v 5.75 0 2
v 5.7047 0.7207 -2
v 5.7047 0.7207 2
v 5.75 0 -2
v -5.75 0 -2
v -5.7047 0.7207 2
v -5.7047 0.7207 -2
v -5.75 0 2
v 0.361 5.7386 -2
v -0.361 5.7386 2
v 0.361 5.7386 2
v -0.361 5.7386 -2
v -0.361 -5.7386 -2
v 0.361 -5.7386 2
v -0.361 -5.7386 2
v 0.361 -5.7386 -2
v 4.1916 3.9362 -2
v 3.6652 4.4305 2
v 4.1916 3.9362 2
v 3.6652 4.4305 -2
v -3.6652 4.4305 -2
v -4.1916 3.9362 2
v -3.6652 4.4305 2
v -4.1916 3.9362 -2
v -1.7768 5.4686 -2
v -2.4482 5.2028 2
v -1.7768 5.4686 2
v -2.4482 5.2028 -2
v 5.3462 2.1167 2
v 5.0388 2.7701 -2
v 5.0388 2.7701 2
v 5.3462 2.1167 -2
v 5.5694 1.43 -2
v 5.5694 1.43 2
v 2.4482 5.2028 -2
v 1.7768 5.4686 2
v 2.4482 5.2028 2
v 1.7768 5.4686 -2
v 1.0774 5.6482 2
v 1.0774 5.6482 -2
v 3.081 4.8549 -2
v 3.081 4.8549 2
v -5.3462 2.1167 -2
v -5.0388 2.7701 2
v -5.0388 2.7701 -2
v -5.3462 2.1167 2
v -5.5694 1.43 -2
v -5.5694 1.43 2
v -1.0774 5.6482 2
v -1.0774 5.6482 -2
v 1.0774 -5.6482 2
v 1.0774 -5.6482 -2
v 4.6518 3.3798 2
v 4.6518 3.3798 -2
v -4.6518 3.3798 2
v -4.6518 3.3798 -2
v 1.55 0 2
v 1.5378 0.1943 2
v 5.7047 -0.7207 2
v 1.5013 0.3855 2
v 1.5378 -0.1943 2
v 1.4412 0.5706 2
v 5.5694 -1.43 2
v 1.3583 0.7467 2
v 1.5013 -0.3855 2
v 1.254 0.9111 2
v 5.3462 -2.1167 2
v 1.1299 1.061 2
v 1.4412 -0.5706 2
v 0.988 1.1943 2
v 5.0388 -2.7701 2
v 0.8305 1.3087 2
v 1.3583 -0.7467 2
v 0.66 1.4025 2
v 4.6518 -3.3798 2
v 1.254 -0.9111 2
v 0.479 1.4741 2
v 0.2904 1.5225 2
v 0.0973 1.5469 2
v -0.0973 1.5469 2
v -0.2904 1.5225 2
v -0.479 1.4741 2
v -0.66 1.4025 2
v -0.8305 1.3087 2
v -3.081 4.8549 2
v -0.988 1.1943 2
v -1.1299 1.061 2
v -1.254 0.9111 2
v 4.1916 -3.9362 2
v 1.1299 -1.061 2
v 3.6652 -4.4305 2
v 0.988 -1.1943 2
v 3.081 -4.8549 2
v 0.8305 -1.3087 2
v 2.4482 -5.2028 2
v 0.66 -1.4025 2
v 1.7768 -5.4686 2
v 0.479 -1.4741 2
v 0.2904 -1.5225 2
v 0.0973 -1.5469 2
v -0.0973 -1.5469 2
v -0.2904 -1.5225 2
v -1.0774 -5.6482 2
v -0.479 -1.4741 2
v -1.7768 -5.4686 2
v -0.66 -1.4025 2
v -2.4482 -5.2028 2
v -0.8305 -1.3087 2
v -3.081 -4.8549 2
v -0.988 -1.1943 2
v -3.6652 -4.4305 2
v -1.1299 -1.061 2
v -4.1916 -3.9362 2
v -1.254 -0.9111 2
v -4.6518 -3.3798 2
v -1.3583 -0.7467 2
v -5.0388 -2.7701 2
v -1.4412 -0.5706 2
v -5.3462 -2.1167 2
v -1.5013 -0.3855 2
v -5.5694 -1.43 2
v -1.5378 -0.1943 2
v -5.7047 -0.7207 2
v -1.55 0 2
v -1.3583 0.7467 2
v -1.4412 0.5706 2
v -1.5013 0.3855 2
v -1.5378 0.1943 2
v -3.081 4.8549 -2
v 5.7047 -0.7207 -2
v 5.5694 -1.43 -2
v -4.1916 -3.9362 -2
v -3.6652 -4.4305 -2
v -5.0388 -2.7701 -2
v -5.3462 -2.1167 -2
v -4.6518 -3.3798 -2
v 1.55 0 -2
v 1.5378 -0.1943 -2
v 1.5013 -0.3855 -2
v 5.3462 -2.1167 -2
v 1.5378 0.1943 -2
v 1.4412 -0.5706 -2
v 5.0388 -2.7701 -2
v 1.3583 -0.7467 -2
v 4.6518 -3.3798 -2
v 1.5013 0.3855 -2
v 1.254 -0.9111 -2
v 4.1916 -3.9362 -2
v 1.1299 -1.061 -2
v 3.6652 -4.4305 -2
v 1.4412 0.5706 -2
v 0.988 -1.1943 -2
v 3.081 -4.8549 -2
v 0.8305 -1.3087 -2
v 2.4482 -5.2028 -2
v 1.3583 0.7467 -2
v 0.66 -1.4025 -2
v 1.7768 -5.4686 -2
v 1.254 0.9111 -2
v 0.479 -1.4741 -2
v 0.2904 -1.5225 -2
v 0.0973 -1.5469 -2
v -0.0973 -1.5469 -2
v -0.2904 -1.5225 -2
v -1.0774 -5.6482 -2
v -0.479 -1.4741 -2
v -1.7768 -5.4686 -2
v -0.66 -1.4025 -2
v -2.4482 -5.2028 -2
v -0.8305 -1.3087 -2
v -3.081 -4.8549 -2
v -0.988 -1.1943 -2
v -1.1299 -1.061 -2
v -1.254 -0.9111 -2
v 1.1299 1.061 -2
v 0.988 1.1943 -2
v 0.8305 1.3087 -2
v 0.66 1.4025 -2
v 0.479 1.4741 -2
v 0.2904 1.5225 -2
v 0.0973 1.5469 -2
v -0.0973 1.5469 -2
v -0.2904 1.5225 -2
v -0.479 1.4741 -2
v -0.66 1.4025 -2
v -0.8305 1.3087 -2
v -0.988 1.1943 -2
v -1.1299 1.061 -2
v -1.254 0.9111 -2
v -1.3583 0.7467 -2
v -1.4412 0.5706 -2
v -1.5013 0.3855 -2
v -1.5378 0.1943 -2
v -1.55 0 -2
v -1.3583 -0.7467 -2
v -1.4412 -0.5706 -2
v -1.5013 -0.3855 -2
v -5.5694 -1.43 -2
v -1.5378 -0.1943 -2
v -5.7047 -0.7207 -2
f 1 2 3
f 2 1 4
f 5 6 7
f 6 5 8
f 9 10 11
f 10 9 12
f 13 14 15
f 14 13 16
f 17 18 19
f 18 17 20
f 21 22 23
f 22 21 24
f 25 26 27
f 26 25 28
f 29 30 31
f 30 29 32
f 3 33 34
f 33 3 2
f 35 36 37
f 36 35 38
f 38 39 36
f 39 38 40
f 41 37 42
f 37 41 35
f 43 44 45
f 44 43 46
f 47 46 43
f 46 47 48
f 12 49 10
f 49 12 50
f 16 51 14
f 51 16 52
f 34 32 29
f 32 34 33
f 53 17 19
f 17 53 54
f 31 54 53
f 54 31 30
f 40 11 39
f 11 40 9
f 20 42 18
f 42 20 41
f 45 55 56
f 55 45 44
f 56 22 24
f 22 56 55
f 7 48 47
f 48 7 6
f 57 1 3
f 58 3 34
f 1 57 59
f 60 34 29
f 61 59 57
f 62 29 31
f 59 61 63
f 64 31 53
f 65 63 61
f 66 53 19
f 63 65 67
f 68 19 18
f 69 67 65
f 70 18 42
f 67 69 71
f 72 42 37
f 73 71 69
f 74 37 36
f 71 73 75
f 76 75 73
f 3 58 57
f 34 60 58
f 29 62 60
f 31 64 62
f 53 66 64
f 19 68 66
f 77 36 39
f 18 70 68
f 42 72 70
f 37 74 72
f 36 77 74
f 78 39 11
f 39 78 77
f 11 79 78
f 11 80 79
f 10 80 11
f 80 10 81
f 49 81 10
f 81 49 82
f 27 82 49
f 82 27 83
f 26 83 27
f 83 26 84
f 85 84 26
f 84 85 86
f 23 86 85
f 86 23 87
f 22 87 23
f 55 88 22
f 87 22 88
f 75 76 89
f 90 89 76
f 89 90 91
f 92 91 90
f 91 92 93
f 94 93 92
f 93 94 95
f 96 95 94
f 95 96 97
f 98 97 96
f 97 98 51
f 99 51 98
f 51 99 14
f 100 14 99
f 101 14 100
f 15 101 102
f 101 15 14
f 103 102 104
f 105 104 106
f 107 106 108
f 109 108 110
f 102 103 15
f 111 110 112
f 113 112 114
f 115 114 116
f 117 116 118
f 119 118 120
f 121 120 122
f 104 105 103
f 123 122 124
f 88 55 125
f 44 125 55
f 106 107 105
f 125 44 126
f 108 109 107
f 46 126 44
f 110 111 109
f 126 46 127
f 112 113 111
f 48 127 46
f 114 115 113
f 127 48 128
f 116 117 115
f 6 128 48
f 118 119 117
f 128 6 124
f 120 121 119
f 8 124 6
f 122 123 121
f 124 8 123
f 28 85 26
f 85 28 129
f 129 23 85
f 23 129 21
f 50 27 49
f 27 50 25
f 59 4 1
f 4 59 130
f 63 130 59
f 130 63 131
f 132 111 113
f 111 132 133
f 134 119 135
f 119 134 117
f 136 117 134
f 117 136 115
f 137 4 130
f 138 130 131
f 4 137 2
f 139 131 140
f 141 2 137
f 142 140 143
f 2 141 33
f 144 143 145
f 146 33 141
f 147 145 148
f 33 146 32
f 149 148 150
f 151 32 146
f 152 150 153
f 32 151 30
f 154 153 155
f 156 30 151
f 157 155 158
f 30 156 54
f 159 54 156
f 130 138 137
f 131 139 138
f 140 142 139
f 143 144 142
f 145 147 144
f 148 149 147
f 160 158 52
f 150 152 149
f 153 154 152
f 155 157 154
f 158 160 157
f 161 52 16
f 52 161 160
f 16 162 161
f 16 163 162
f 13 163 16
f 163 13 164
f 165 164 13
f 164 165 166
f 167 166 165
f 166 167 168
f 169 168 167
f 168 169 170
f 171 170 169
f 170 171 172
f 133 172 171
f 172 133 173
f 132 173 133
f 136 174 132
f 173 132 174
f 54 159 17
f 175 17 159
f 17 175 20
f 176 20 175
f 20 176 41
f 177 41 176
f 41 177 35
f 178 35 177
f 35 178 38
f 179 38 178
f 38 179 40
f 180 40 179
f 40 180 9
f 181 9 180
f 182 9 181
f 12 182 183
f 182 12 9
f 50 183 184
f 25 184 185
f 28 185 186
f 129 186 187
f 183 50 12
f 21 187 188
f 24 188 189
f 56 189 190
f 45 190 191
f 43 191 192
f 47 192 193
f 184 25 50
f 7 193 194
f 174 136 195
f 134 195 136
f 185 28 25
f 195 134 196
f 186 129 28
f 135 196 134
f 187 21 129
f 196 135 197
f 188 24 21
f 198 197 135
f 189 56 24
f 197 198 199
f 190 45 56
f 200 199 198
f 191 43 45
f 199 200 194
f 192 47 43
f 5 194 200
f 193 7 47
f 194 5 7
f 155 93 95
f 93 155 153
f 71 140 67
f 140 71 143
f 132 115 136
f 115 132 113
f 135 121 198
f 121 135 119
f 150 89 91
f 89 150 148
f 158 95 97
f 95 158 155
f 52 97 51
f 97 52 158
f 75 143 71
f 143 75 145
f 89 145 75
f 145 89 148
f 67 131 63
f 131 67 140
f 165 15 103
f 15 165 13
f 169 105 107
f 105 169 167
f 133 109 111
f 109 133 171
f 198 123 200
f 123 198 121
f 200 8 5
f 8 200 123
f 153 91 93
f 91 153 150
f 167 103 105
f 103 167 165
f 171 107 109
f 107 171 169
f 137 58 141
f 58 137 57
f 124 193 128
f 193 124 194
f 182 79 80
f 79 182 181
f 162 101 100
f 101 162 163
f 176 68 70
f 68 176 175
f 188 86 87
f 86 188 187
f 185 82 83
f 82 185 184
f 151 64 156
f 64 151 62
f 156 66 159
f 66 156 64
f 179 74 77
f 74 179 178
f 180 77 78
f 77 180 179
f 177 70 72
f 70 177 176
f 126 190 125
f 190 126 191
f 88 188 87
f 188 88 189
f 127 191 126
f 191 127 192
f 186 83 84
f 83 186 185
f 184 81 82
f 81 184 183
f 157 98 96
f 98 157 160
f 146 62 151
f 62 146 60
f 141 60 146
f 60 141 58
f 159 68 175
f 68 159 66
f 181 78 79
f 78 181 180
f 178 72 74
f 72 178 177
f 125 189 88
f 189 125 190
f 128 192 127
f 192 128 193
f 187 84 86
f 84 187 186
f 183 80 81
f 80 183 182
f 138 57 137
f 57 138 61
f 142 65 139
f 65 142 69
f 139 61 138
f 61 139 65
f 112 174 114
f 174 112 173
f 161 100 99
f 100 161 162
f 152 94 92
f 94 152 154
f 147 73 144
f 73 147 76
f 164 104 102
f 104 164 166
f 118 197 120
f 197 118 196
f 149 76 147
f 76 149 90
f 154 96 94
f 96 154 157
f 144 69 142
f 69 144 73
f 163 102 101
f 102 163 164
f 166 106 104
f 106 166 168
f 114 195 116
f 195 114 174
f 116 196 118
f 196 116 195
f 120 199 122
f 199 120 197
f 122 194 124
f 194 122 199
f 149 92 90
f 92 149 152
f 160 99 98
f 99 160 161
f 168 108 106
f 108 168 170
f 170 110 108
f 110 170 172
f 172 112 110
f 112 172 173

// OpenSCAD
$fn = 50;


difference() {
	union() {
		translate(v = [0, 0, -2.0000000000]) {
			cylinder(h = 4, r = 5.7500000000);
		}
	}
	union() {
		translate(v = [0, 0, -100.0000000000]) {
			cylinder(h = 200, r = 1.5500000000);
		}
	}
}
